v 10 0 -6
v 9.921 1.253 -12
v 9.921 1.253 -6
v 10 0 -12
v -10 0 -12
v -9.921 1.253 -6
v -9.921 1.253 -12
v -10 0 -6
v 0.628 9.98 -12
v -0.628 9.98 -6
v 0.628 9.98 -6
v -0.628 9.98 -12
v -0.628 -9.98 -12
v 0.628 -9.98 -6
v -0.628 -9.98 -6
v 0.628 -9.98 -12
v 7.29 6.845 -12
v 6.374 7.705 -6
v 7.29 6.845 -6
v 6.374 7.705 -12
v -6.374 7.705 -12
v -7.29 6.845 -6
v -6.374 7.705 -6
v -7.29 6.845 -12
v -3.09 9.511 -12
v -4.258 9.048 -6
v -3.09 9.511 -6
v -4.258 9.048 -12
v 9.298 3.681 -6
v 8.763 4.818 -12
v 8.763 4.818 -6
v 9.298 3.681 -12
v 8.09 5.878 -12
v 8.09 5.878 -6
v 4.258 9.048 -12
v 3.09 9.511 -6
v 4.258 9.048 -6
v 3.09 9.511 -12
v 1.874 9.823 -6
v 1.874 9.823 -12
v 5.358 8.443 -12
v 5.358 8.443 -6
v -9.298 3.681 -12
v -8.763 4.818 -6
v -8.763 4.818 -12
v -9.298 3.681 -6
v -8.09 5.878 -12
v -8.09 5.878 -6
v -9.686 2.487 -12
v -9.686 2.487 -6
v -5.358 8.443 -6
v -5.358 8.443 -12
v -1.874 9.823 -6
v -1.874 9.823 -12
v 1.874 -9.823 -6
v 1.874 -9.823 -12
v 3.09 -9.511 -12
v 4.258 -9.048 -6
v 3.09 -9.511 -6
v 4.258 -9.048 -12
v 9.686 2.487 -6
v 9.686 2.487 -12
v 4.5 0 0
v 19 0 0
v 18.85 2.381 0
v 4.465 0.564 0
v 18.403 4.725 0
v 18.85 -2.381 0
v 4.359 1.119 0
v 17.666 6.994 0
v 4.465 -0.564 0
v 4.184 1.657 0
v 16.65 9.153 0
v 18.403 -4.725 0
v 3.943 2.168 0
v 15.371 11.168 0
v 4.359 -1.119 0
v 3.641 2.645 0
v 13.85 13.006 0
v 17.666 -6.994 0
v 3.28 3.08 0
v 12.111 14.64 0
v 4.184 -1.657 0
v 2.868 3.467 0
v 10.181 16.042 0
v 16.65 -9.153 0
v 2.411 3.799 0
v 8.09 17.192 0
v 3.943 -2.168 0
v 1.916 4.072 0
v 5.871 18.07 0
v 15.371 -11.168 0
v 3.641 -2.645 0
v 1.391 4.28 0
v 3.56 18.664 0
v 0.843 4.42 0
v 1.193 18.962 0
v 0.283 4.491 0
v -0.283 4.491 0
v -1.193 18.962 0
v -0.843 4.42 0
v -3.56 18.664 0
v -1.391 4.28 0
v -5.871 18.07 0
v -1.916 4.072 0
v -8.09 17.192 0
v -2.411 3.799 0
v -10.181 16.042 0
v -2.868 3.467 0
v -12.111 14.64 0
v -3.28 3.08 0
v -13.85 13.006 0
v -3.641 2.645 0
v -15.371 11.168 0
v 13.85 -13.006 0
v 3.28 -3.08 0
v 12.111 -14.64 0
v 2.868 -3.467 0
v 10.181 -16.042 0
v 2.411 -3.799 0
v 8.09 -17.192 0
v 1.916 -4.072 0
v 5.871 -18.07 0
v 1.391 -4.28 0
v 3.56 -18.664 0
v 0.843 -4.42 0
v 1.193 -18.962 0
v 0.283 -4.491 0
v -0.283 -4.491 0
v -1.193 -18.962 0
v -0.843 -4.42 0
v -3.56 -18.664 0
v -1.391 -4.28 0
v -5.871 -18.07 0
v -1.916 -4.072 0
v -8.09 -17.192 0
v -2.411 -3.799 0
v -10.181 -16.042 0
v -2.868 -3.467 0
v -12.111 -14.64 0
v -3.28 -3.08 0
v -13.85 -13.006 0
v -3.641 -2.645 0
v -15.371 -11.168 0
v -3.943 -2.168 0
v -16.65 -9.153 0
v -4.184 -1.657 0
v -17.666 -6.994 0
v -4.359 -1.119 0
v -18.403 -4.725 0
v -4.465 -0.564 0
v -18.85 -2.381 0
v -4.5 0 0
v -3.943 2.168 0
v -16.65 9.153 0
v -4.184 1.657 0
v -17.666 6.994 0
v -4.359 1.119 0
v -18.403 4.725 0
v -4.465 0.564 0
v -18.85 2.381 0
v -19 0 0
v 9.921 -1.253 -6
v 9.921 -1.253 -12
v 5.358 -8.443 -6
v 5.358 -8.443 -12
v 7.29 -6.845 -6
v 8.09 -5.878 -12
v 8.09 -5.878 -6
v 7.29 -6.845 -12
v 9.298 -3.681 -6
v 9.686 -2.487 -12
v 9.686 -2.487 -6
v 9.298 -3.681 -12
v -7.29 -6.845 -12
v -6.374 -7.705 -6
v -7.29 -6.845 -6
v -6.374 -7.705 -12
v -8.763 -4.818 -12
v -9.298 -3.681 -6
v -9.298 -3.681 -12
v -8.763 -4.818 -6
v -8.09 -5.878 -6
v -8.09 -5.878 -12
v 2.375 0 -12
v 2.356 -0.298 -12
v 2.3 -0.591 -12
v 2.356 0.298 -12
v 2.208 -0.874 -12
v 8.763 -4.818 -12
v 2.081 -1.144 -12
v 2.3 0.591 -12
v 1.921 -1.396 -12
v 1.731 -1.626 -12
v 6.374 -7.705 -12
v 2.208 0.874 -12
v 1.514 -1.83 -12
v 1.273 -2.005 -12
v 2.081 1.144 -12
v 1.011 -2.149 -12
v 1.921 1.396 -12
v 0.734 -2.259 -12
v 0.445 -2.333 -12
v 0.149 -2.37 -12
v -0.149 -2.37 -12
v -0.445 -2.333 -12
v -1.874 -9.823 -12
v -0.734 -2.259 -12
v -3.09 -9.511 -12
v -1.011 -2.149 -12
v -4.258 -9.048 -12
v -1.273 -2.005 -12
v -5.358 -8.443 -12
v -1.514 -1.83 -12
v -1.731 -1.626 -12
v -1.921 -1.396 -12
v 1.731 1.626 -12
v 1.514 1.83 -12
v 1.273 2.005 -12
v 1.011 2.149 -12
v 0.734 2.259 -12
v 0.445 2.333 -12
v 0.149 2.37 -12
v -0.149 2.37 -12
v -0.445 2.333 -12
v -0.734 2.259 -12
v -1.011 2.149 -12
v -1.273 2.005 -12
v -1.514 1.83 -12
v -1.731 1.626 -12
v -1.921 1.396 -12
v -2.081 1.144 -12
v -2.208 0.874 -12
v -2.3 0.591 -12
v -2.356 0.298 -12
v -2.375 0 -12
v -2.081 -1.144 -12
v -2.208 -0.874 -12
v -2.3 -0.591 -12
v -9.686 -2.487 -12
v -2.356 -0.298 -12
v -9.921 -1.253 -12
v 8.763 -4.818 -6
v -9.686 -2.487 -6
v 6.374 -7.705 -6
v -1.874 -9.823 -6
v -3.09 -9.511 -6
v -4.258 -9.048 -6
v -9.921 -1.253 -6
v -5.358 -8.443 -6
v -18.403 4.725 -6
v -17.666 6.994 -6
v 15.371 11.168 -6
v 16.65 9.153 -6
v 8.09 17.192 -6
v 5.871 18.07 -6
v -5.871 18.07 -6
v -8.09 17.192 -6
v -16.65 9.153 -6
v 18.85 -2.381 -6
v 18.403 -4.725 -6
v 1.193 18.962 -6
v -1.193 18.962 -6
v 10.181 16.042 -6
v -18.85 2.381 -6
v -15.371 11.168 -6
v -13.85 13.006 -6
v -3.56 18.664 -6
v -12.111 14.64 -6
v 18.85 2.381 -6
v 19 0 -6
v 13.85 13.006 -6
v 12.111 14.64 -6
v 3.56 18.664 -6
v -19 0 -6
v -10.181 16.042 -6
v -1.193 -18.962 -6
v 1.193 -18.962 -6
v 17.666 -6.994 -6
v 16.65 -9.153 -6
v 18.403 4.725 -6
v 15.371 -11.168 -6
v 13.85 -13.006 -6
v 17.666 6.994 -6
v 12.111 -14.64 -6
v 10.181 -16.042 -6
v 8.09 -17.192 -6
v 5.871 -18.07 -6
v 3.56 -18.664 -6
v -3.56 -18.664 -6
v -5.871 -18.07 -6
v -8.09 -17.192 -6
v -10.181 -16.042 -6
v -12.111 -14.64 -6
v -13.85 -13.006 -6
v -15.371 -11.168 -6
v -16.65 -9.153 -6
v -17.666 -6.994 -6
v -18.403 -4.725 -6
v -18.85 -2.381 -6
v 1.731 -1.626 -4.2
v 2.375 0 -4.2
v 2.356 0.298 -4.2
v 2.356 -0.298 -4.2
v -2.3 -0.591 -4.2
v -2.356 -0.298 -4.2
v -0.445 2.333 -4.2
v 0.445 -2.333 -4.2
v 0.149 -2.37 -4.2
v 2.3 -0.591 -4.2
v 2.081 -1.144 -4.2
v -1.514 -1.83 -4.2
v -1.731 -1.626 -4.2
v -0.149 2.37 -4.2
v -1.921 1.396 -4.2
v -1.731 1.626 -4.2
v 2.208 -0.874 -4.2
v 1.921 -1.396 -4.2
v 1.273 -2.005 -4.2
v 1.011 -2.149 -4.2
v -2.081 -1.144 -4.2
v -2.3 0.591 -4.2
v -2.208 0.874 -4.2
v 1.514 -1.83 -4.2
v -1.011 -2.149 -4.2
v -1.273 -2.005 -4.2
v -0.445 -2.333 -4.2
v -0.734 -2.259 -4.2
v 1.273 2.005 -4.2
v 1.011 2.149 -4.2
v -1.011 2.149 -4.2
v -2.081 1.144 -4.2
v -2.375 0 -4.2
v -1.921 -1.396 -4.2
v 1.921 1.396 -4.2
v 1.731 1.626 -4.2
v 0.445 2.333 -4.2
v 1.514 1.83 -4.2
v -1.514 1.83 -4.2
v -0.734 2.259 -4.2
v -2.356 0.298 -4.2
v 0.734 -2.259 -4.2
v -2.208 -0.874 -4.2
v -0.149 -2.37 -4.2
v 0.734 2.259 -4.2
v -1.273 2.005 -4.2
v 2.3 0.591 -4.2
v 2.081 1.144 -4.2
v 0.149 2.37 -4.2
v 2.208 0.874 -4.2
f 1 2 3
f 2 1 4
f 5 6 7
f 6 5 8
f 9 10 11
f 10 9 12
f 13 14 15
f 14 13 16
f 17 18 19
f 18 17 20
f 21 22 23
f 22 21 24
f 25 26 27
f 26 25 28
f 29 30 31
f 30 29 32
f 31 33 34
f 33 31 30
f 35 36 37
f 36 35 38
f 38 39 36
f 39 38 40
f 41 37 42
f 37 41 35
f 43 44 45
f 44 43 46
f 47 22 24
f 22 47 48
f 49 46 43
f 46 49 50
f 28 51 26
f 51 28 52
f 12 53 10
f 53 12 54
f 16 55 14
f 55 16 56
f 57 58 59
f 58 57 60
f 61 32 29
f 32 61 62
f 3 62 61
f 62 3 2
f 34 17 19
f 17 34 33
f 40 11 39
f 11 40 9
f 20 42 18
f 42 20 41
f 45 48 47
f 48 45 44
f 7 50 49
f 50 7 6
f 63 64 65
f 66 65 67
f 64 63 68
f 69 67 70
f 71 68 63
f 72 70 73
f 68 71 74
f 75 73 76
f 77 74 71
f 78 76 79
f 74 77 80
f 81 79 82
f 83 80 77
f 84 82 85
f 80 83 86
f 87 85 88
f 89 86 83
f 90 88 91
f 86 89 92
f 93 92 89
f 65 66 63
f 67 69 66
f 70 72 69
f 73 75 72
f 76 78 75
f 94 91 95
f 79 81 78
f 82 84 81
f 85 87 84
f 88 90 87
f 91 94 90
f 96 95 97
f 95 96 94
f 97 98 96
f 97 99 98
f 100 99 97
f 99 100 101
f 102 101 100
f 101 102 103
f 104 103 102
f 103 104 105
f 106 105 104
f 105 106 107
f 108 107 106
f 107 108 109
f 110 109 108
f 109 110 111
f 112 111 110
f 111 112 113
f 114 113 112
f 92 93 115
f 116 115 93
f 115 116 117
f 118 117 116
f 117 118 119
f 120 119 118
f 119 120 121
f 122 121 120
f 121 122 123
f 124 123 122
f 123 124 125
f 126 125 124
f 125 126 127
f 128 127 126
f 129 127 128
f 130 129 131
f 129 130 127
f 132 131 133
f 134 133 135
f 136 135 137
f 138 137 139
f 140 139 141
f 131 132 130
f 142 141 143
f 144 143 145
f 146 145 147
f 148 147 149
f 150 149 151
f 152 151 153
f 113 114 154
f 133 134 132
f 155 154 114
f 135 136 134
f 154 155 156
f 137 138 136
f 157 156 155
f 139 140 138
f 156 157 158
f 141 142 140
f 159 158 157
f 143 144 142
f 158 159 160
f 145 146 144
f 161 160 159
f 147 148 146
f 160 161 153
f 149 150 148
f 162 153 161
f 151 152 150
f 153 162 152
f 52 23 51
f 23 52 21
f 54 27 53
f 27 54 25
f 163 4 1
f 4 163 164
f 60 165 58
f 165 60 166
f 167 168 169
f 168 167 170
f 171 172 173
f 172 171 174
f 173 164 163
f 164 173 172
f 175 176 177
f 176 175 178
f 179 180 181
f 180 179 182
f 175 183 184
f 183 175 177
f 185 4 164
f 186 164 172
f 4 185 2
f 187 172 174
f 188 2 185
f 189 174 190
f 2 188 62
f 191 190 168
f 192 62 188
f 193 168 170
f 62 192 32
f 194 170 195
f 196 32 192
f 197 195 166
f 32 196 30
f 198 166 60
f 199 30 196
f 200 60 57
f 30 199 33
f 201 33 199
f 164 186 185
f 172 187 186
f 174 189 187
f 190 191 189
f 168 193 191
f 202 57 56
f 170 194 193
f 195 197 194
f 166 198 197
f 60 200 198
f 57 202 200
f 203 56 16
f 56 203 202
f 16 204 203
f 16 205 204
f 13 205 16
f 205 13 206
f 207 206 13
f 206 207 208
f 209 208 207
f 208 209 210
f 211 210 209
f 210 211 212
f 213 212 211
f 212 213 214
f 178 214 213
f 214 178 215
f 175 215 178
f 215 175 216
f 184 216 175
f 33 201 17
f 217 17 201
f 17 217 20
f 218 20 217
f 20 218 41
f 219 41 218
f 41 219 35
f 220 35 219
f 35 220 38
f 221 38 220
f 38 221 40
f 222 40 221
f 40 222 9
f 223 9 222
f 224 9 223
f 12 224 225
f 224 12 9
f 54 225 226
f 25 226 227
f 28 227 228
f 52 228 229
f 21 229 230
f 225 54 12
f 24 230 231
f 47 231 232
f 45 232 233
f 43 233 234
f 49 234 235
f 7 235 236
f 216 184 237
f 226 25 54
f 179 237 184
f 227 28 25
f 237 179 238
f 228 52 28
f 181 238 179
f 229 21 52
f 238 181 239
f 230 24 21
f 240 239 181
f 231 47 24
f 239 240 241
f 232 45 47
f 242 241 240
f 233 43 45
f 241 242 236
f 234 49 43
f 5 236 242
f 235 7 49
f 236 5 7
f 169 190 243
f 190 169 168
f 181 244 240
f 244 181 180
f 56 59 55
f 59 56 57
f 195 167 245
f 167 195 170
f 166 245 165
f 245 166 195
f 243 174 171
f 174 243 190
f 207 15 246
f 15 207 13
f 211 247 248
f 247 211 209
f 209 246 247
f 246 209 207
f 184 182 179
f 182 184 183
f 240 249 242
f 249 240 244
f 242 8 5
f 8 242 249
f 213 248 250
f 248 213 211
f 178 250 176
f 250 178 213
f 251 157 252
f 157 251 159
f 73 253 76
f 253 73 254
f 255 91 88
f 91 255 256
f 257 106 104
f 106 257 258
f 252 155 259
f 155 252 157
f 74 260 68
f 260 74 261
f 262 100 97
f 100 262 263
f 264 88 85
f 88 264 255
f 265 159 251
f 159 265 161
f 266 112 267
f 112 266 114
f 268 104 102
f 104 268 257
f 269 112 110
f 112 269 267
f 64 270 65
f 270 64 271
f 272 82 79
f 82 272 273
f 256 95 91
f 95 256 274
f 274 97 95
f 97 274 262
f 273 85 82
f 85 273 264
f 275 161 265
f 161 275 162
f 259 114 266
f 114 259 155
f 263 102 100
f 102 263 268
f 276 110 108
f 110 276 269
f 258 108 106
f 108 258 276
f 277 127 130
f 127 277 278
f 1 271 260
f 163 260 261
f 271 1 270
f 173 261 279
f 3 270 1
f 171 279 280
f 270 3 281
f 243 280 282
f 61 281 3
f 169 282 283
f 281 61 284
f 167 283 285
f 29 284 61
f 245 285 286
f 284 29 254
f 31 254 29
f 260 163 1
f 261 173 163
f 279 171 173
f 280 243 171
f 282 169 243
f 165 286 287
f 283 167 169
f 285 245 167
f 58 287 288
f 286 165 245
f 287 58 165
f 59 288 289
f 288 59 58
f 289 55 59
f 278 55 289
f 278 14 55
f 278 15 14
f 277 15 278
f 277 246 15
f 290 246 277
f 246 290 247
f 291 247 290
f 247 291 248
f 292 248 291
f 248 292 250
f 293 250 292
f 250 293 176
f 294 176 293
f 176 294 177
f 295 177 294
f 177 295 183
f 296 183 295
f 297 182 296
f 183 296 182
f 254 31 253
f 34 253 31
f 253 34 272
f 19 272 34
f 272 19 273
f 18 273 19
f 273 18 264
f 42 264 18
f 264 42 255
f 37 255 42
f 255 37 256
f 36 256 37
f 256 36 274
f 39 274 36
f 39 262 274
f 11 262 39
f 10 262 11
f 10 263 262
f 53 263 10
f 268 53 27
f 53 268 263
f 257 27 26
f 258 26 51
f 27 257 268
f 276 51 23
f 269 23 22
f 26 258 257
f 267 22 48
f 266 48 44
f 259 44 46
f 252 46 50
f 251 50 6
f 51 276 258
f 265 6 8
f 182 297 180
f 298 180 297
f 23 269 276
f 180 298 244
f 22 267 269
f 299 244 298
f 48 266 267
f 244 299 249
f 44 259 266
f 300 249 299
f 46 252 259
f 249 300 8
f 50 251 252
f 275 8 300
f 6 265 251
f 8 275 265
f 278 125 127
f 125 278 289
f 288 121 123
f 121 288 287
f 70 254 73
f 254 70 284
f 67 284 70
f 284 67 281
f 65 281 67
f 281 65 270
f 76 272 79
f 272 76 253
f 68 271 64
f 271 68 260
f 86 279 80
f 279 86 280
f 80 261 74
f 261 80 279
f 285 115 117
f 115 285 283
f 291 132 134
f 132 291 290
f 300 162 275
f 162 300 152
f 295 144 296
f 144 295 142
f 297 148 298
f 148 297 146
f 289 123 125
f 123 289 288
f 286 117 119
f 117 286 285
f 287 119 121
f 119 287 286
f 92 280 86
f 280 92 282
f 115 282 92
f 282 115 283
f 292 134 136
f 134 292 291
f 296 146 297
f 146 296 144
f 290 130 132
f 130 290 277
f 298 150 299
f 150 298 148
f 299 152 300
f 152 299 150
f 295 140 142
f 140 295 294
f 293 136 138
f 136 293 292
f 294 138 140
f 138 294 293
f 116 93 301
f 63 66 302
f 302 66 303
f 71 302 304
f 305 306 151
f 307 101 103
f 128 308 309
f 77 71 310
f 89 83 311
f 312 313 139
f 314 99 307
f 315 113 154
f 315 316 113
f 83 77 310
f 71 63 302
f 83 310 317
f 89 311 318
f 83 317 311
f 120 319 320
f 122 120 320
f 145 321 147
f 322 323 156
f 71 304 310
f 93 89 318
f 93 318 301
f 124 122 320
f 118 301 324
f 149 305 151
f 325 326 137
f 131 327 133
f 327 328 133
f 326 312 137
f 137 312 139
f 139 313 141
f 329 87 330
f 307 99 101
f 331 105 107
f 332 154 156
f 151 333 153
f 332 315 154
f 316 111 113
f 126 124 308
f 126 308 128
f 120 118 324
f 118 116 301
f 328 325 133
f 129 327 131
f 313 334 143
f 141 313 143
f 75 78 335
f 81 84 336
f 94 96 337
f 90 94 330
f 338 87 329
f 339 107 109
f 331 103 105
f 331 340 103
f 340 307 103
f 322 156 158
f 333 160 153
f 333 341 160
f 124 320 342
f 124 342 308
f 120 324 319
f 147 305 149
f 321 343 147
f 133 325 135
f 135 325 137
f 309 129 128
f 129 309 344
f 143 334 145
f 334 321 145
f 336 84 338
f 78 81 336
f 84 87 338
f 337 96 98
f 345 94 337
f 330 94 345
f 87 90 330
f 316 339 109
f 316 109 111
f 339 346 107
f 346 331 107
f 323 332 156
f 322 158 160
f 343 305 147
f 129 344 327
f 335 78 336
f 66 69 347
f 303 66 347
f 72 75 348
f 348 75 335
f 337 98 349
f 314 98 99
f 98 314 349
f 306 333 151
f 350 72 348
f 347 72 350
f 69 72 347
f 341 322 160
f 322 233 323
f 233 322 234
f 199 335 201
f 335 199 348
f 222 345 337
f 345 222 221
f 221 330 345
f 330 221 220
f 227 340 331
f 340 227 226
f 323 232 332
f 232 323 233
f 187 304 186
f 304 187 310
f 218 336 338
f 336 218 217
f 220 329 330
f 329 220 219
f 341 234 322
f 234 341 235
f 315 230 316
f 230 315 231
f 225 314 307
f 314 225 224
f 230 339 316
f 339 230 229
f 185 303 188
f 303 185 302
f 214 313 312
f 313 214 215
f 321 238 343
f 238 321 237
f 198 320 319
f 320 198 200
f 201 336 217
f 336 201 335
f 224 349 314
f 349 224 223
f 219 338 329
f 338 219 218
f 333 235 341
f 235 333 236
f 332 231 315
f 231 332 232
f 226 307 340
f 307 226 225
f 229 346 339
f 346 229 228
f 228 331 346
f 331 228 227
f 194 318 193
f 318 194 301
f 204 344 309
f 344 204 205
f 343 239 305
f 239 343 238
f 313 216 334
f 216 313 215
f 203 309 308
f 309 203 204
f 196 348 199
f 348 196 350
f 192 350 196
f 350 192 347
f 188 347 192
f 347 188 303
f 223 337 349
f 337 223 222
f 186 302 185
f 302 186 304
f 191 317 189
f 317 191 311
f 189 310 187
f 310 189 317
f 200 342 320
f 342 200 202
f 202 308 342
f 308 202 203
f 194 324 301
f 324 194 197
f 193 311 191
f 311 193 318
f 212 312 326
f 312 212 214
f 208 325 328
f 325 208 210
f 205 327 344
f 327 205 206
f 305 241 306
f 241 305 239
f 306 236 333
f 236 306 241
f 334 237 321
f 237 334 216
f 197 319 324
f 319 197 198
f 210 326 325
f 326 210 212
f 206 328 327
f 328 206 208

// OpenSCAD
$fn = 50;


difference() {
	union() {
		translate(v = [0, 0, -12.0000000000]) {
			cylinder(h = 12, r = 10.0000000000);
		}
		translate(v = [0, 0, -6.0000000000]) {
			cylinder(h = 6, r = 19.0000000000);
		}
	}
	union() {
		translate(v = [0, 0, 0]) {
			rotate(a = [0, 0, 0]) {
				difference() {
					union() {
						#translate(v = [0, 0, -12.0000000000]) {
							cylinder(h = 12, r = 2.2500000000);
						}
						#translate(v = [0, 0, -4.2000000000]) {
							cylinder(h = 4.2000000000, r1 = 2.3750000000, r2 = 4.5000000000);
						}
						#translate(v = [0, 0, -12.0000000000]) {
							cylinder(h = 12, r = 2.3750000000);
						}
						#translate(v = [0, 0, -12.0000000000]) {
							cylinder(h = 12, r = 2.2500000000);
						}
					}
					union();
				}
			}
		}
	}
}
